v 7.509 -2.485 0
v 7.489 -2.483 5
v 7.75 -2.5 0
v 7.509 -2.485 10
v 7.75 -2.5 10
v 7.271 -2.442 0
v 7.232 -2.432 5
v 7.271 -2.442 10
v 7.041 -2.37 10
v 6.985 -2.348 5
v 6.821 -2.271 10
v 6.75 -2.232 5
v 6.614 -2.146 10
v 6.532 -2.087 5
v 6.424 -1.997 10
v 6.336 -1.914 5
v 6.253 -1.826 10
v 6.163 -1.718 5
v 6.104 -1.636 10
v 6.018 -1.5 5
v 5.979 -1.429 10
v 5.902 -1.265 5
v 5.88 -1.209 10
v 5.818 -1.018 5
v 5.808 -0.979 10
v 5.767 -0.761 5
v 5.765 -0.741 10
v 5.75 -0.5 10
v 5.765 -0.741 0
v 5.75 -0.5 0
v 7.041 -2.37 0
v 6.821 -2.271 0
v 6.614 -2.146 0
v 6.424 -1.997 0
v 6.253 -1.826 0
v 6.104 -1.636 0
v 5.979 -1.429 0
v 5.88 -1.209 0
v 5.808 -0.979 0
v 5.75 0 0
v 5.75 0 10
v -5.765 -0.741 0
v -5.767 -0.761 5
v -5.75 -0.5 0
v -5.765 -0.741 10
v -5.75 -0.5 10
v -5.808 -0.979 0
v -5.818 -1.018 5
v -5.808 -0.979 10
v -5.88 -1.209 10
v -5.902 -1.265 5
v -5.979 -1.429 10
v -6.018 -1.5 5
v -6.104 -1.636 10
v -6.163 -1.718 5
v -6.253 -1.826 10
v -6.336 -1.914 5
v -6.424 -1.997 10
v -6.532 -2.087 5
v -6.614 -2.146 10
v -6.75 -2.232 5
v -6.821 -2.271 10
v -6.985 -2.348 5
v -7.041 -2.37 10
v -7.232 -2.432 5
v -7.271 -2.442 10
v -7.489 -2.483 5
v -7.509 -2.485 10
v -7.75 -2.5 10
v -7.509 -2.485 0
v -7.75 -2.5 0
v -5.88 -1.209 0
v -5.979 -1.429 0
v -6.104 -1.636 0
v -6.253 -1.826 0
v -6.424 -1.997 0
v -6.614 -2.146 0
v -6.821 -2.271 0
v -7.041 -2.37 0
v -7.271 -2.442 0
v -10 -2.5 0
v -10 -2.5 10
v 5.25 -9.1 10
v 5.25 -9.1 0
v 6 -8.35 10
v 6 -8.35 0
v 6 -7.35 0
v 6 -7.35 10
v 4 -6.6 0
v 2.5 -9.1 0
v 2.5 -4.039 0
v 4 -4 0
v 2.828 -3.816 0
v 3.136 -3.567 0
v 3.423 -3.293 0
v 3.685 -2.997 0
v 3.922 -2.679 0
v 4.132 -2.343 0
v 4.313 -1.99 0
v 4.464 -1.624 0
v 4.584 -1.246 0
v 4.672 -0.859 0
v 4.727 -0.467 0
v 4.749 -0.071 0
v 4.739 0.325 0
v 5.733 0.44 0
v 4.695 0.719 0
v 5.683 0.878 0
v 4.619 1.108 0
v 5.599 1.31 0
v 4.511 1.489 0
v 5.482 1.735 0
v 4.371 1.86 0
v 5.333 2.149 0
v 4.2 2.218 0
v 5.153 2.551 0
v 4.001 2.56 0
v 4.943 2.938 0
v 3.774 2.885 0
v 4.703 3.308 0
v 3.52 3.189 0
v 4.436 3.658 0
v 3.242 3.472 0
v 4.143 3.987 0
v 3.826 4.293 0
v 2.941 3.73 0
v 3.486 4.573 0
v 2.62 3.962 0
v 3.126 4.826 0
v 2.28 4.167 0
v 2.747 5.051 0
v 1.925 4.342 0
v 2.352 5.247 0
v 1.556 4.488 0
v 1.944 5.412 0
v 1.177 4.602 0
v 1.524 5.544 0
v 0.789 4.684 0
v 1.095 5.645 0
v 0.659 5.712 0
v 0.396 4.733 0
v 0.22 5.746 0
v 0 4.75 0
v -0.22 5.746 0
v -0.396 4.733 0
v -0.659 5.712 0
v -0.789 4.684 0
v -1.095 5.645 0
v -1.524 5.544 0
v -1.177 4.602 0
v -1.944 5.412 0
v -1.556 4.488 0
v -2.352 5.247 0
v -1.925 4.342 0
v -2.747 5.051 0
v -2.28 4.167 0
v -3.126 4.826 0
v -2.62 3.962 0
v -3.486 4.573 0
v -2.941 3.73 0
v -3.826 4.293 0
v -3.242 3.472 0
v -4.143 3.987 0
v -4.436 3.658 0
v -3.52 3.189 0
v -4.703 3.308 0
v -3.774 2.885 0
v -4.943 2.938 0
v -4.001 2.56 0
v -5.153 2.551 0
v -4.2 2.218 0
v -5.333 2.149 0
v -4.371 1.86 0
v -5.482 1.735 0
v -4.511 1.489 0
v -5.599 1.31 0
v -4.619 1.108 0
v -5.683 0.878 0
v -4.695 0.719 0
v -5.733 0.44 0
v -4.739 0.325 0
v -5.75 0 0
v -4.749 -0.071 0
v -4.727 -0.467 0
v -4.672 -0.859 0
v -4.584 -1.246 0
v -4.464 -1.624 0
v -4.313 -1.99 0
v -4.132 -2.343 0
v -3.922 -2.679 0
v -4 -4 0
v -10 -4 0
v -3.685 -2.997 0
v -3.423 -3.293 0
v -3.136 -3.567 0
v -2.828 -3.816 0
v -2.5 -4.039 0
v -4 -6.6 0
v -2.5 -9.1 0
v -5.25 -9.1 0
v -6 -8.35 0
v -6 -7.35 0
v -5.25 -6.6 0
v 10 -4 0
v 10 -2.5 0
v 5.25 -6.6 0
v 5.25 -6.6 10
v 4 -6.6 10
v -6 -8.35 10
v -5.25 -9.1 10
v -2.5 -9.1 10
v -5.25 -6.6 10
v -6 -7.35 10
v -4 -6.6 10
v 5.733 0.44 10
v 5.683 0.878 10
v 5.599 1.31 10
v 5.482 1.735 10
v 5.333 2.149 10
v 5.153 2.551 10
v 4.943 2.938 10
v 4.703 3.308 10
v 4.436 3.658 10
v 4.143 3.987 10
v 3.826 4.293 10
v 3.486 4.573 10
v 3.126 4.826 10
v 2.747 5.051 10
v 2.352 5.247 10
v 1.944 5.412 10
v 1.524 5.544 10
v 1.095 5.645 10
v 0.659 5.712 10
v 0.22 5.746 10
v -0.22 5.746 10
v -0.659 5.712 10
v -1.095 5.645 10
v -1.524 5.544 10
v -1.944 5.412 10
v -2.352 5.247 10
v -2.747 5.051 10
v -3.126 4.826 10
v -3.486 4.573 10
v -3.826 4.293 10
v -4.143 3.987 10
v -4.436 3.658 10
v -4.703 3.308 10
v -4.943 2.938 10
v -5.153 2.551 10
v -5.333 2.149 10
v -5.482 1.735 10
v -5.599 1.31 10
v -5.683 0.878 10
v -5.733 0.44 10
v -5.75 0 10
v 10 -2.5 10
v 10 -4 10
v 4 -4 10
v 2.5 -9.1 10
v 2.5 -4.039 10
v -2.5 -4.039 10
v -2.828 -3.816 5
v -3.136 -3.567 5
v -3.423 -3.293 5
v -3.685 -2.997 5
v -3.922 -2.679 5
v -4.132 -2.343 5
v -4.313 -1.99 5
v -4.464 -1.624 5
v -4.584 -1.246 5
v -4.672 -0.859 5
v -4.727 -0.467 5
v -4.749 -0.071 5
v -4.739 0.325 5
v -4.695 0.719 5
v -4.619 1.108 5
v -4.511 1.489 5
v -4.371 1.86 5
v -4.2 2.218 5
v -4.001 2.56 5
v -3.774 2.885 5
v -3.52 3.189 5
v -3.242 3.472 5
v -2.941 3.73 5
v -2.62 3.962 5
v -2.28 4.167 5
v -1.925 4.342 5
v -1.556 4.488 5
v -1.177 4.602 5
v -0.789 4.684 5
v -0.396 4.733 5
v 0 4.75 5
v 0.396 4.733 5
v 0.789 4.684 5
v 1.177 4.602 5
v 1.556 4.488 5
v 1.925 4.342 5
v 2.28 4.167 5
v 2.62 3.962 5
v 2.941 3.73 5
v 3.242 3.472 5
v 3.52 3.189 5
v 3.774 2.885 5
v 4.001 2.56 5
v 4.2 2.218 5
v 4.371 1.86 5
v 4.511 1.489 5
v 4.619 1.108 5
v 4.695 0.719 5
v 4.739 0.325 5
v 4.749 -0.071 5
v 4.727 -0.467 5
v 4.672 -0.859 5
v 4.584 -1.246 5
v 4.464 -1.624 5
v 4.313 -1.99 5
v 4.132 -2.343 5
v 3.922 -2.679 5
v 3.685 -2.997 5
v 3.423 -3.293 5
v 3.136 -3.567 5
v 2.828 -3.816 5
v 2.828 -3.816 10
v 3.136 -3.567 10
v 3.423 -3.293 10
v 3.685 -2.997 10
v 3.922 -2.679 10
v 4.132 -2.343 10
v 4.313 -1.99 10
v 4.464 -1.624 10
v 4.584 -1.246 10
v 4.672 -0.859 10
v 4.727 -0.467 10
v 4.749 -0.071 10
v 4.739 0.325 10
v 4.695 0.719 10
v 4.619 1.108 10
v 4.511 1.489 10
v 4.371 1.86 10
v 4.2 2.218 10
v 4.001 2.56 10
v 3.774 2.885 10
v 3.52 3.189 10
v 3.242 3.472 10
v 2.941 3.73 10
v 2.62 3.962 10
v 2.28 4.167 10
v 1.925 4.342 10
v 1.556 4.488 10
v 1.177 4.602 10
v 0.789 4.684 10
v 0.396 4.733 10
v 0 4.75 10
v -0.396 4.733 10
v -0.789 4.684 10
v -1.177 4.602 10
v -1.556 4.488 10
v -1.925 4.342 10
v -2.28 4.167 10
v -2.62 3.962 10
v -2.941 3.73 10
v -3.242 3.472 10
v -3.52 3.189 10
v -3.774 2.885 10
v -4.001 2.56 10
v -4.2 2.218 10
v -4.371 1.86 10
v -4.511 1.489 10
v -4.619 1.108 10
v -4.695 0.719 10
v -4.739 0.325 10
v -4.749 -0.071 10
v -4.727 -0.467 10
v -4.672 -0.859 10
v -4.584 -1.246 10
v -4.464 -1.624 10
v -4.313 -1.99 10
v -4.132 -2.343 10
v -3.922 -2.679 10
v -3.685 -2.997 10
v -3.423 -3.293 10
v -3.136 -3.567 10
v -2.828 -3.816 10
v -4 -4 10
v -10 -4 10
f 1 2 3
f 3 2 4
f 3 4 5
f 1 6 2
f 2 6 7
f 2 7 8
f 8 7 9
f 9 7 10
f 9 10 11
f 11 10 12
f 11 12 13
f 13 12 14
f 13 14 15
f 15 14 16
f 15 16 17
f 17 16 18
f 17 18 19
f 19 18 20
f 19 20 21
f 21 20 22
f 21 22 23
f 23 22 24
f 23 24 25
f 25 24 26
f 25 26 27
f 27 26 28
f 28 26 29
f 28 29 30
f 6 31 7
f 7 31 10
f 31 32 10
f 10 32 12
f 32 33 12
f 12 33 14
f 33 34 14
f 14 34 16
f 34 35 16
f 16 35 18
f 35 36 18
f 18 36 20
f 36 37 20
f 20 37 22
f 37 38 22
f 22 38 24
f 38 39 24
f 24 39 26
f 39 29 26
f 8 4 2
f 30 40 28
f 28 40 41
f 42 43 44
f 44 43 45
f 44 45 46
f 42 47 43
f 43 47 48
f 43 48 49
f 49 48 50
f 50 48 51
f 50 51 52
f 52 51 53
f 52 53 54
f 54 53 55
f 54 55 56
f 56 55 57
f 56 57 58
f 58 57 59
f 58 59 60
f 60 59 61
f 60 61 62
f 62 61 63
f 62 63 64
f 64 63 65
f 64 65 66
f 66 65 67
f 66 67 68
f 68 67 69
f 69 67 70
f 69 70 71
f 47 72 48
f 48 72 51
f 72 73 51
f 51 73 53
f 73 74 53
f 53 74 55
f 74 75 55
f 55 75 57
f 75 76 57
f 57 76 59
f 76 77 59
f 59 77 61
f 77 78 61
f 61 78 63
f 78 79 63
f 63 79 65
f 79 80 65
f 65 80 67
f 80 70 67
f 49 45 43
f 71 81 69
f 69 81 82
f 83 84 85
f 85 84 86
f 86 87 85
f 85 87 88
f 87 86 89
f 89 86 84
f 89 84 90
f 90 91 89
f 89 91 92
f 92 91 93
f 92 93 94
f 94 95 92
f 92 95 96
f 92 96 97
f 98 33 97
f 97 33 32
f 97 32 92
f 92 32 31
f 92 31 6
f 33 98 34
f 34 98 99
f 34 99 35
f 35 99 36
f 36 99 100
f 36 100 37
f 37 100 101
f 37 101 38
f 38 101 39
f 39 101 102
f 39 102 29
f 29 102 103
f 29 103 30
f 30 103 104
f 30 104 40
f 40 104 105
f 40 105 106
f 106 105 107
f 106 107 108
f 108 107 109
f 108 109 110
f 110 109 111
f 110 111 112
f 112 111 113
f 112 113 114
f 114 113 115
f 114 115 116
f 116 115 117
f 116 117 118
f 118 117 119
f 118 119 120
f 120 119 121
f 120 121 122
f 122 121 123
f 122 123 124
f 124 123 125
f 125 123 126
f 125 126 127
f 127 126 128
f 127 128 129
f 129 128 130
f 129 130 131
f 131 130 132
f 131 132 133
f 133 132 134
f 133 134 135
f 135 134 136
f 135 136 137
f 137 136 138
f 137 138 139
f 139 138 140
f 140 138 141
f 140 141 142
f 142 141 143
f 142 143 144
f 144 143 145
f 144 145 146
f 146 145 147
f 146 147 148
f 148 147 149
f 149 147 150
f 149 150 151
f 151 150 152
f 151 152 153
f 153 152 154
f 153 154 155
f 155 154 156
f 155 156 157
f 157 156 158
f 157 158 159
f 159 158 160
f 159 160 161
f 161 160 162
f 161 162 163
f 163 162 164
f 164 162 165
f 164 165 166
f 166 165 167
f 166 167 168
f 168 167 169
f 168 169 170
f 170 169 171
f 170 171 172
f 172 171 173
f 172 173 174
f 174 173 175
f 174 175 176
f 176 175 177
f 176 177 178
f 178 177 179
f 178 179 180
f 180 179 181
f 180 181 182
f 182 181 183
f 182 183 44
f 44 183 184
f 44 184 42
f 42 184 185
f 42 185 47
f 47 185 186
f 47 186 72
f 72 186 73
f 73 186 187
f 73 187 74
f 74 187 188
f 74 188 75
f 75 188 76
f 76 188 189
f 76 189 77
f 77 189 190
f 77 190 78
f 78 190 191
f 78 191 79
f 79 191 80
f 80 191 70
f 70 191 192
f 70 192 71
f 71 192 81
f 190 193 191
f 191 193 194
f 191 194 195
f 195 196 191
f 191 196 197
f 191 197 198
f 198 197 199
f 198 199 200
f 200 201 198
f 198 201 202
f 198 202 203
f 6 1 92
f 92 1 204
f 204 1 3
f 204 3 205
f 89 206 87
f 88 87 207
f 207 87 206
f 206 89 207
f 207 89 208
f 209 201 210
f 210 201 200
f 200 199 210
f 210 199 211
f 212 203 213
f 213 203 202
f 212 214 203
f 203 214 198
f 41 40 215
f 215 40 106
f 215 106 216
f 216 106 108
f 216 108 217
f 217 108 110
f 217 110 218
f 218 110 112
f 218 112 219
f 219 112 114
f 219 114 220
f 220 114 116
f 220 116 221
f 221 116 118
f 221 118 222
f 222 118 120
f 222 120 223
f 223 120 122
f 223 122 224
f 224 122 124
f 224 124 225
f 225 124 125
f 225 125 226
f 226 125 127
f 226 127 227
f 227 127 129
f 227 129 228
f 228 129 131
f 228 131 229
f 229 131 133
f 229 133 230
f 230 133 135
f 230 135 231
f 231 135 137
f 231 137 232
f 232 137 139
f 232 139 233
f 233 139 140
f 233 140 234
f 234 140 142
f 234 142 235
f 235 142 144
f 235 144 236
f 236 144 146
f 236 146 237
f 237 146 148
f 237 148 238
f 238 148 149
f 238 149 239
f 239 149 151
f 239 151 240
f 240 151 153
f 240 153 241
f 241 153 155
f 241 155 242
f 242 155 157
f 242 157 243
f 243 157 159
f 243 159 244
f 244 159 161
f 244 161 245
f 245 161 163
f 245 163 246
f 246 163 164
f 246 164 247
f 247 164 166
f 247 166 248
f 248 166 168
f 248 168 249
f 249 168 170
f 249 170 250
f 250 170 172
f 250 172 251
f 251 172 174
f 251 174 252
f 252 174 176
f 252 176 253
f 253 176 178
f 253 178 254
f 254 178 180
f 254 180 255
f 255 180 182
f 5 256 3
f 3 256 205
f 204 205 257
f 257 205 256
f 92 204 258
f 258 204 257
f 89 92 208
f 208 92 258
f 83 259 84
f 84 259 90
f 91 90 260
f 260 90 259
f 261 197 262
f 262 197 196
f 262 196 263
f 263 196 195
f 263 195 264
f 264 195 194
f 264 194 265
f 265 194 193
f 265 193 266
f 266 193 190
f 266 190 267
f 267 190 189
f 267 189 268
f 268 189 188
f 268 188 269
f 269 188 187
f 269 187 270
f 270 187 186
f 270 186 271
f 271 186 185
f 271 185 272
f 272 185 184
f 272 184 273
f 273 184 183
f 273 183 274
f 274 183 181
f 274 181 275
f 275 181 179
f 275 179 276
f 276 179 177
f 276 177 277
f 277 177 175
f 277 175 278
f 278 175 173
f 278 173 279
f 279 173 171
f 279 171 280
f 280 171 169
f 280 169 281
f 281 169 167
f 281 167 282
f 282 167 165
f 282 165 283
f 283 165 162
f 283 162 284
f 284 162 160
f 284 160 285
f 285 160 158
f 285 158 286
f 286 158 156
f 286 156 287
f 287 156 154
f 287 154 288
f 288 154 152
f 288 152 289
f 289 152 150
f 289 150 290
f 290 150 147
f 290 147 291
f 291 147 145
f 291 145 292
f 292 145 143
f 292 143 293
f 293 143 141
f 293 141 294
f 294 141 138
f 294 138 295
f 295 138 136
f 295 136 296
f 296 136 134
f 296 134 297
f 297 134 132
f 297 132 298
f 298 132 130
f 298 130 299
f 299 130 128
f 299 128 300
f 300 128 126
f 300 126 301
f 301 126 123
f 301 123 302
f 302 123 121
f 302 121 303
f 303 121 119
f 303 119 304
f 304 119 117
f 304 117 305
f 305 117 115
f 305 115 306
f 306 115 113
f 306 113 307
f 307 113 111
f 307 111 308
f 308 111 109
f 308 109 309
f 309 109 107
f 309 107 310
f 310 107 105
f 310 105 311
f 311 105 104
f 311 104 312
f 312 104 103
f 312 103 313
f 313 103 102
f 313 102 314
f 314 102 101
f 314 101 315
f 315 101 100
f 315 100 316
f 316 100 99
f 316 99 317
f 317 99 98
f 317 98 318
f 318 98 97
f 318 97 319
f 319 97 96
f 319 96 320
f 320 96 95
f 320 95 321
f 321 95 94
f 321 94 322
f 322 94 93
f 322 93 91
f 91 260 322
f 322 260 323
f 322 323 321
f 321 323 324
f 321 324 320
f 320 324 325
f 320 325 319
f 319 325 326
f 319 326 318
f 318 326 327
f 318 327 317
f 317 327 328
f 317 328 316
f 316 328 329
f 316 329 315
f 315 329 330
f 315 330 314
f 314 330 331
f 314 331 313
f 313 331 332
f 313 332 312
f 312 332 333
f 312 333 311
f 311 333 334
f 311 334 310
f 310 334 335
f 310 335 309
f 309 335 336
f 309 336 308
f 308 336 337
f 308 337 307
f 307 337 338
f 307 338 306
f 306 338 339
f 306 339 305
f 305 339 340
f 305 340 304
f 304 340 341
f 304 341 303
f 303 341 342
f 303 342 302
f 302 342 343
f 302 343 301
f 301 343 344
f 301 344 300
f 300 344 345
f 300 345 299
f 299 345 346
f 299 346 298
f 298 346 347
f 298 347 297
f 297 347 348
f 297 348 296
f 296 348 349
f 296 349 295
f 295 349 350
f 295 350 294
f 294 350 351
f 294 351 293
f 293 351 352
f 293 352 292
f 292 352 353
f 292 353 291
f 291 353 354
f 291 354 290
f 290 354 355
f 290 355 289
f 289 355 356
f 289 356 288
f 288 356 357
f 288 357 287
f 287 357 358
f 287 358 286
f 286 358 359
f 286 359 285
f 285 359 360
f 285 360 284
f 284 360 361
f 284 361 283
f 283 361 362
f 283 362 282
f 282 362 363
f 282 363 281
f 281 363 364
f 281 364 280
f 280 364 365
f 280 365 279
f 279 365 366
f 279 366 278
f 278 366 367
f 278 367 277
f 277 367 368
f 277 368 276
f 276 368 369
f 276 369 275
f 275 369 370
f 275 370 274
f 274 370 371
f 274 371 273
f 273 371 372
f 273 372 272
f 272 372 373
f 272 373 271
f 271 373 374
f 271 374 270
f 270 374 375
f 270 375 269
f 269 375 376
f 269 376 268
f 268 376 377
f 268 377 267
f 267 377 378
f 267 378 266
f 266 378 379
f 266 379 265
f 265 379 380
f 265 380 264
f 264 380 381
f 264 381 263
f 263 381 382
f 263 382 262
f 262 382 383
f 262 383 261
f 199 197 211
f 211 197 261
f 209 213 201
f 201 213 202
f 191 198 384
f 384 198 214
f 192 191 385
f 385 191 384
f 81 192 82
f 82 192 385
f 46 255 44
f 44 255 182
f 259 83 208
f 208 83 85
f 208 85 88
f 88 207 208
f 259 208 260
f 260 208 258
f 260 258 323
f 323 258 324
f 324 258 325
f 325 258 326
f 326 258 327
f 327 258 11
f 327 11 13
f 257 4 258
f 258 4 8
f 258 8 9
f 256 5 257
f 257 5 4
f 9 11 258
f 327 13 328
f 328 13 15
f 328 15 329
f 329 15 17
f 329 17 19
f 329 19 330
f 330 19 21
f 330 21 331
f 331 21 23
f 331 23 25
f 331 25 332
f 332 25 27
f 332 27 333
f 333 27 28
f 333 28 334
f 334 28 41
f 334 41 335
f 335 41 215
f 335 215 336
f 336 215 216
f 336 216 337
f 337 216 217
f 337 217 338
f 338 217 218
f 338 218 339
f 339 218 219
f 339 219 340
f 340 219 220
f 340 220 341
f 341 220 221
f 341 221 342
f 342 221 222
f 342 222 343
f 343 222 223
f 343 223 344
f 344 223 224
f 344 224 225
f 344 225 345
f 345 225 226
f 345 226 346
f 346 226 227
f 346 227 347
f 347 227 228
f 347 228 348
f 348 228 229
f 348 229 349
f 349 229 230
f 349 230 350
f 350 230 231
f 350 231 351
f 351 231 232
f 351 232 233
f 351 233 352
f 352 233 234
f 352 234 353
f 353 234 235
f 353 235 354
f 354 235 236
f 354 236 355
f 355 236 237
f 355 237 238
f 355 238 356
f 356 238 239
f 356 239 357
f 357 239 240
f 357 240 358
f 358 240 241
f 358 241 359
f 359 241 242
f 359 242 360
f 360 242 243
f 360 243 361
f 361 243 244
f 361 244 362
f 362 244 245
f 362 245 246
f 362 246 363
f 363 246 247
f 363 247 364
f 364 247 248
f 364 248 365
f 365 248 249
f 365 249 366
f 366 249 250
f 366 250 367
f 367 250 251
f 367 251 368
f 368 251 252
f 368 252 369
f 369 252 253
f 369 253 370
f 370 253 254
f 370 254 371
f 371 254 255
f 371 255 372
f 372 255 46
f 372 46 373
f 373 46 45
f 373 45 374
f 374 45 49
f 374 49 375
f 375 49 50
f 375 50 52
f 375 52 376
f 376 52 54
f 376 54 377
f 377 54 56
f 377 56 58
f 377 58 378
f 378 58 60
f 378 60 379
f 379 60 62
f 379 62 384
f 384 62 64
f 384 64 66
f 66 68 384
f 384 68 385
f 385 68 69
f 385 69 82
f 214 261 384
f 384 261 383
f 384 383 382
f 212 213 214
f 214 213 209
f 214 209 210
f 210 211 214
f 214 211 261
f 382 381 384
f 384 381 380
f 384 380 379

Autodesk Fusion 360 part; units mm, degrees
sketch "Sketch1" plane through (0, 0, 0) normal (0, 0, 1) x (1, 0, 0)
  line L0 (10, -2.5) -> (10, -4)
  line L1 (10, -4) -> (4, -4)
  line L2 (4, -4) -> (4, -6.6)
  line L3 (4, -6.6) -> (6, -6.6)
  line L4 (6, -6.6) -> (6, -9.1)
  line L5 (6, -9.1) -> (2.5, -9.1)
  line L6 (2.5, -9.1) -> (2.5, -4.0389)
  line L7 (-2.5, -4.0389) -> (-2.5, -9.1)
  line L8 (-2.5, -9.1) -> (-6, -9.1)
  line L9 (-6, -9.1) -> (-6, -6.6)
  line L10 (-6, -6.6) -> (-4, -6.6)
  line L11 (-4, -6.6) -> (-4, -4)
  line L12 (-4, -4) -> (-10, -4)
  line L13 (-10, -4) -> (-10, -2.5)
  line L14 (-10, -2.5) -> (-5.75, -2.5)
  line L15 (5.75, -2.5) -> (10, -2.5)
  arc A0 (2.5, -4.0389) -> (-2.5, -4.0389) centre (0, 0) ccw
  arc A1 (5.75, 0) -> (-5.75, 0) centre (0, 0) ccw
  line L16 (-5.75, 0) -> (-5.75, -2.5)
  line L17 (5.75, 0) -> (5.75, -2.5)
  dimension "d3" = 8
  dimension "d4" = 4
  dimension "d5" = 5
  dimension "d6" = 2.5
  dimension "d7" = 2.5
  dimension "d8" = 2.6
  dimension "d9" = 12
  dimension "d10" = 20
  dimension "d11" = 6
  dimension "d12" = 10
  dimension "d14" = 2.5
  dimension "d19" = 9.5
  dimension "d24" = 1.5
  dimension "d25" = 11.5
extrude "Extrude1" add sketch "Sketch1" along normal blind 10
chamfer "Chamfer1" distance 0.75 angle 45 4 edges at (-6, -6.6, 5) (-6, -9.1, 5) (6, -6.6, 5) (6, -9.1, 5)
fillet "Fillet3" radius 2 2 edges at (-5.75, -2.5, 5) (5.75, -2.5, 5)
equation "d4 = d3 / 2"
equation "d6 = d5 / 2"
equation "d11 = d9 / 2"
equation "d12 = d10 / 2"
